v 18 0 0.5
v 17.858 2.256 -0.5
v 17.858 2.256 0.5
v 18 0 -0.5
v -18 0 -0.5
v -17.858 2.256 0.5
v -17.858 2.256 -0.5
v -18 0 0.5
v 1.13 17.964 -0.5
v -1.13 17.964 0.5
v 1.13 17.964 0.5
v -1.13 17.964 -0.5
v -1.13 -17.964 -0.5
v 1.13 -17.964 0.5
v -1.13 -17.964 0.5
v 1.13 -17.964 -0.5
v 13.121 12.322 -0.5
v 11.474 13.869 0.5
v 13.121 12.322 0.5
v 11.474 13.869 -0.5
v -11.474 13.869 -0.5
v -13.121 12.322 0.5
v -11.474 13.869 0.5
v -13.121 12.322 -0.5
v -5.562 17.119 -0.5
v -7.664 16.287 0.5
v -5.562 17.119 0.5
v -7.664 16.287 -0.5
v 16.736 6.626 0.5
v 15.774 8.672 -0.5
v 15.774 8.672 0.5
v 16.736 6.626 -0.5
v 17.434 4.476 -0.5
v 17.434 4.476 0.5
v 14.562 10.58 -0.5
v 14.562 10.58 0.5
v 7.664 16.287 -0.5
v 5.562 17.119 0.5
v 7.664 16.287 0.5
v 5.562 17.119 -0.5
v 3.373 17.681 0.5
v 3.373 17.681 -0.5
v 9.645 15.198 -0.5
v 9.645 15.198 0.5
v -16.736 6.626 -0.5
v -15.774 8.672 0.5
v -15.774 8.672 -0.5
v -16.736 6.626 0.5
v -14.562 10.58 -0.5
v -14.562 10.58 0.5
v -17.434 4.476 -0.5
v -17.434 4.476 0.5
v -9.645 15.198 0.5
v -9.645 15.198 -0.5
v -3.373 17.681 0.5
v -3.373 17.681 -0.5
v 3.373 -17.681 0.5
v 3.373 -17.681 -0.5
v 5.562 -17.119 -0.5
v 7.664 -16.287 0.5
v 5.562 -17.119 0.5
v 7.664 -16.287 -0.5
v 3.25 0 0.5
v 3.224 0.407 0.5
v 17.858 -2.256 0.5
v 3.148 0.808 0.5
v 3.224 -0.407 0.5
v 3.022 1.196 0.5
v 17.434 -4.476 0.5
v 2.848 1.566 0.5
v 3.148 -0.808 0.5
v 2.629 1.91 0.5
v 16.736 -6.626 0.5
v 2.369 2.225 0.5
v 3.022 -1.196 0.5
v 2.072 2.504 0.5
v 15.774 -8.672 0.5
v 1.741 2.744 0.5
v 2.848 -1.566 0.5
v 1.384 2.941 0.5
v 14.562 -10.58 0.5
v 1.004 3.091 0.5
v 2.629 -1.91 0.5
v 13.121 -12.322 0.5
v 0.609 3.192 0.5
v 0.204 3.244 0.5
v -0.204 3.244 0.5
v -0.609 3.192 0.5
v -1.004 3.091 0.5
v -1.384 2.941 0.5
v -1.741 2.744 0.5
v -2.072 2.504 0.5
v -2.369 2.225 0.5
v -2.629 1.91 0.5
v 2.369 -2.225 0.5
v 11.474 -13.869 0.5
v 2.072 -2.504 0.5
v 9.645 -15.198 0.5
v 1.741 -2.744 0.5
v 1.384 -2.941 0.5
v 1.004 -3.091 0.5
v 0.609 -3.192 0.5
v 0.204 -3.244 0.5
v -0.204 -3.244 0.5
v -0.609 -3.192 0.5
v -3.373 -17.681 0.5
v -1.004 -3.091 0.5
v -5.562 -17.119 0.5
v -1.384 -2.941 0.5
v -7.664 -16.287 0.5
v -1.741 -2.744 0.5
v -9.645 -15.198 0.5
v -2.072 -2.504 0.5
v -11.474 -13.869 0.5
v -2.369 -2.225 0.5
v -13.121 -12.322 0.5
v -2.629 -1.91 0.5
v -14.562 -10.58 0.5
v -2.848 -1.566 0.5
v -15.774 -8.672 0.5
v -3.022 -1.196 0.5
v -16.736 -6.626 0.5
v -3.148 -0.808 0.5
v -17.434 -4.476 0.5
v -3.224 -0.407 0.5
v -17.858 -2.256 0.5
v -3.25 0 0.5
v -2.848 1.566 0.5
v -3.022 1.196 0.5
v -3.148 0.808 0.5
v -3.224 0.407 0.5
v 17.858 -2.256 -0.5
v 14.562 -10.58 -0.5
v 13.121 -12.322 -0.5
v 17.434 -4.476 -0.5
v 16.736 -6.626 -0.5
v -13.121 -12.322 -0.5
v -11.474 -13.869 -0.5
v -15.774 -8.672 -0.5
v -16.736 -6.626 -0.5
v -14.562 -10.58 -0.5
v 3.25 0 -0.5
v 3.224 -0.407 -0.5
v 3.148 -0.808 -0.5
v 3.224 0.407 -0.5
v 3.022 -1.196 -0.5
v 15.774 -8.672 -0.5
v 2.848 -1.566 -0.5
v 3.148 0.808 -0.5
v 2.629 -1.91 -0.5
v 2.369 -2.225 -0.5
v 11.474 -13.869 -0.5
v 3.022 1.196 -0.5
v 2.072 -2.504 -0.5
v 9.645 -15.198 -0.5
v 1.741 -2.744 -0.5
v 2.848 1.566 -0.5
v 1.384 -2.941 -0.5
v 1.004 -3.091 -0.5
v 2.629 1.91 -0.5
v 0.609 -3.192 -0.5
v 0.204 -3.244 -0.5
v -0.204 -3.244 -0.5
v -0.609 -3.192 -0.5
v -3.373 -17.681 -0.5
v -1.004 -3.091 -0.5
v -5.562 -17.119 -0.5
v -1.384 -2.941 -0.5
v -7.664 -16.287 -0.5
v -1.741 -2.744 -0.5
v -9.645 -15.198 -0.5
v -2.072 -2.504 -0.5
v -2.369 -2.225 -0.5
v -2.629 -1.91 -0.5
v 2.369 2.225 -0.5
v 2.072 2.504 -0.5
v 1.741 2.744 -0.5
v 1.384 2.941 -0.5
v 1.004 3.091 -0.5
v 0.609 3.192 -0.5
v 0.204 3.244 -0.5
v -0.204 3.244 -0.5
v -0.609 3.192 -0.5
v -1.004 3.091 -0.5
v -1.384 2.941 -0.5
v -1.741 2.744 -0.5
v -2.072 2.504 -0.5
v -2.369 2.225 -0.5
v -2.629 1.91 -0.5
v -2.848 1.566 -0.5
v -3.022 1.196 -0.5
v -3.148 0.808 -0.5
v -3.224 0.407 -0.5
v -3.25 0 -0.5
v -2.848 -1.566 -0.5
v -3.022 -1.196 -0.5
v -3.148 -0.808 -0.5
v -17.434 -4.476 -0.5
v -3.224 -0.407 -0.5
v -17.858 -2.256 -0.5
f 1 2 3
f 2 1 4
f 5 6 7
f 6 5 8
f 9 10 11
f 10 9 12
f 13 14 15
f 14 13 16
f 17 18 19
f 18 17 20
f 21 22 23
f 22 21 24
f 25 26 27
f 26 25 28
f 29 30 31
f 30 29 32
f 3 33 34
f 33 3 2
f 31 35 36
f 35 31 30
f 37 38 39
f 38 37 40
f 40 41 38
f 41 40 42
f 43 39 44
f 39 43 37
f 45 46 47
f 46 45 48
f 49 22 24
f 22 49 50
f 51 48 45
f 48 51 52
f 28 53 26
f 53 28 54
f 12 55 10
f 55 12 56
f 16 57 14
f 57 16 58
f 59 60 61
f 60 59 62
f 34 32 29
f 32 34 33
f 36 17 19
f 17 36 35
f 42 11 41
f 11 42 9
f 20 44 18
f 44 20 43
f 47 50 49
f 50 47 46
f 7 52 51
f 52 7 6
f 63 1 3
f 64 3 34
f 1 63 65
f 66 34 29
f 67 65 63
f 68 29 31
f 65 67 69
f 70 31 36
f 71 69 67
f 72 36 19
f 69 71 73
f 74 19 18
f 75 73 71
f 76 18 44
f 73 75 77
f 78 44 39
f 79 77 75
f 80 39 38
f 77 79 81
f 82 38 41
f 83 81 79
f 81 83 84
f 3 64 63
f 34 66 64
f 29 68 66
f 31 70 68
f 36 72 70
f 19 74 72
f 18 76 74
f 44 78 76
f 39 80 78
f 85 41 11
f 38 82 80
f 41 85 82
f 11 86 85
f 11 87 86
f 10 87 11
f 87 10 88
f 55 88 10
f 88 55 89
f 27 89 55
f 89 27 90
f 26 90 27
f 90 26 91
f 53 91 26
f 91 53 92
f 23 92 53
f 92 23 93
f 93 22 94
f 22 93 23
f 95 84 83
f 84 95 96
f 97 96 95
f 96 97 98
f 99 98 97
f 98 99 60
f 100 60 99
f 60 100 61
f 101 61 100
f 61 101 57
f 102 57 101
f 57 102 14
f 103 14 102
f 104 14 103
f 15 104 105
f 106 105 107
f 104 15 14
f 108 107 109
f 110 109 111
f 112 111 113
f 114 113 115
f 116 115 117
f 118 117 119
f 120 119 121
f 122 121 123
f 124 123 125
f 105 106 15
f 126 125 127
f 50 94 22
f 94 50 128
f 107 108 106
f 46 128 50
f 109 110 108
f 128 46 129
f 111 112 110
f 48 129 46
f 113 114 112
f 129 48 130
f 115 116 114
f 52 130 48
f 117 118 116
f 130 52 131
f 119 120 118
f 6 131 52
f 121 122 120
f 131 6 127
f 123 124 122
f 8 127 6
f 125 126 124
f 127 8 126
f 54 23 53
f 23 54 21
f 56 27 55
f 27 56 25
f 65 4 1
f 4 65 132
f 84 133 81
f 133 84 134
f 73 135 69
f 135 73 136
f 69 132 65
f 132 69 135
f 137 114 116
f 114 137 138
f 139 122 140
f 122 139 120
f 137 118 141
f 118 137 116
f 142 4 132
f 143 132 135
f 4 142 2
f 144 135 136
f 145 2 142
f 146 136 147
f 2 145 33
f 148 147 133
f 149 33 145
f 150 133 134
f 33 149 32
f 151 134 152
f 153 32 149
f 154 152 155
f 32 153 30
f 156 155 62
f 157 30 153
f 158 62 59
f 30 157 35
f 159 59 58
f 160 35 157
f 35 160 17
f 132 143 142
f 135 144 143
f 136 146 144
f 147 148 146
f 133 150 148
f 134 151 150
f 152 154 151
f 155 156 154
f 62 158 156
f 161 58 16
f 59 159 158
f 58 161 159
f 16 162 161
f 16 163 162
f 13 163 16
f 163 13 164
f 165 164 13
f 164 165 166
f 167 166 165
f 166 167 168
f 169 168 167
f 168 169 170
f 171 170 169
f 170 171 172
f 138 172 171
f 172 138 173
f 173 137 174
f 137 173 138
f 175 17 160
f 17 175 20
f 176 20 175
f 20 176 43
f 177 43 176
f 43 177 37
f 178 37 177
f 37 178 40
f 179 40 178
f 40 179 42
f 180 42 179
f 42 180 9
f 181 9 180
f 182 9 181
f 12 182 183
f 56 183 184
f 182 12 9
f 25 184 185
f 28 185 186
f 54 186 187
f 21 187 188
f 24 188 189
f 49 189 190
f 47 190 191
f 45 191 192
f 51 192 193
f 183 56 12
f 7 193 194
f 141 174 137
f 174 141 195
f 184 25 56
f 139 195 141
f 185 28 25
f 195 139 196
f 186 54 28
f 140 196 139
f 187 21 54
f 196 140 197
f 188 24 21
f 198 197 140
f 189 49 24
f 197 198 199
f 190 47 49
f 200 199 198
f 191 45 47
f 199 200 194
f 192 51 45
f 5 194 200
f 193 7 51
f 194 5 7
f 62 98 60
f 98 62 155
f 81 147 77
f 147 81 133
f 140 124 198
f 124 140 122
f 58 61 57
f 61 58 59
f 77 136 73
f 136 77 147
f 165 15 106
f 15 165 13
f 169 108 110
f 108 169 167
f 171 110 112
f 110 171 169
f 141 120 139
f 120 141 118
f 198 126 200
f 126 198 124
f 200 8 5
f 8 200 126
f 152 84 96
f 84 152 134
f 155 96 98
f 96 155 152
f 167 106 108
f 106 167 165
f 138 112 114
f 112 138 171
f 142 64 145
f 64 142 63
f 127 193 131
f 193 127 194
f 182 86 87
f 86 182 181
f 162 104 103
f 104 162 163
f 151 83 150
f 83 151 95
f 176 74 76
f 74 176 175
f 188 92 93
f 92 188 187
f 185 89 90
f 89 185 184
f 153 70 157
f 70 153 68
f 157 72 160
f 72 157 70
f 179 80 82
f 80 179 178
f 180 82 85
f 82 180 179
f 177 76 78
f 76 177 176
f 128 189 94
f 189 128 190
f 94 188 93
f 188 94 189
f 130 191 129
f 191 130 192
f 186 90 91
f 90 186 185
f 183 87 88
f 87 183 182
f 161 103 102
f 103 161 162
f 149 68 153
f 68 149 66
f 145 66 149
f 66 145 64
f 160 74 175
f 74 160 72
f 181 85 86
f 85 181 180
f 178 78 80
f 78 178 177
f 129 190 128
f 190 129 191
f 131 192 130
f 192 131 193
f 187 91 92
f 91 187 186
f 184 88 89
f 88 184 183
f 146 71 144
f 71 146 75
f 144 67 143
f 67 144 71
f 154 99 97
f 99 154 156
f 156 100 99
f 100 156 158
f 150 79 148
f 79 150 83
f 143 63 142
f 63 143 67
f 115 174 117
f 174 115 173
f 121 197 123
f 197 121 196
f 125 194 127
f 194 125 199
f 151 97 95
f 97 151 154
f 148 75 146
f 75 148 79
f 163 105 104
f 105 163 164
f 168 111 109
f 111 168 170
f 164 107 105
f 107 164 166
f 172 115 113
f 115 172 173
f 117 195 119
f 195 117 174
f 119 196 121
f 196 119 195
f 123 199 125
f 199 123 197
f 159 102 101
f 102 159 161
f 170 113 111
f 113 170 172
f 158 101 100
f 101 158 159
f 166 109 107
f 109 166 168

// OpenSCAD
$fn = 50;


difference() {
	union() {
		translate(v = [0, 0, -0.5000000000]) {
			cylinder(h = 1, r = 18.0000000000);
		}
	}
	union() {
		translate(v = [0, 0, -100.0000000000]) {
			cylinder(h = 200, r = 3.2500000000);
		}
	}
}
